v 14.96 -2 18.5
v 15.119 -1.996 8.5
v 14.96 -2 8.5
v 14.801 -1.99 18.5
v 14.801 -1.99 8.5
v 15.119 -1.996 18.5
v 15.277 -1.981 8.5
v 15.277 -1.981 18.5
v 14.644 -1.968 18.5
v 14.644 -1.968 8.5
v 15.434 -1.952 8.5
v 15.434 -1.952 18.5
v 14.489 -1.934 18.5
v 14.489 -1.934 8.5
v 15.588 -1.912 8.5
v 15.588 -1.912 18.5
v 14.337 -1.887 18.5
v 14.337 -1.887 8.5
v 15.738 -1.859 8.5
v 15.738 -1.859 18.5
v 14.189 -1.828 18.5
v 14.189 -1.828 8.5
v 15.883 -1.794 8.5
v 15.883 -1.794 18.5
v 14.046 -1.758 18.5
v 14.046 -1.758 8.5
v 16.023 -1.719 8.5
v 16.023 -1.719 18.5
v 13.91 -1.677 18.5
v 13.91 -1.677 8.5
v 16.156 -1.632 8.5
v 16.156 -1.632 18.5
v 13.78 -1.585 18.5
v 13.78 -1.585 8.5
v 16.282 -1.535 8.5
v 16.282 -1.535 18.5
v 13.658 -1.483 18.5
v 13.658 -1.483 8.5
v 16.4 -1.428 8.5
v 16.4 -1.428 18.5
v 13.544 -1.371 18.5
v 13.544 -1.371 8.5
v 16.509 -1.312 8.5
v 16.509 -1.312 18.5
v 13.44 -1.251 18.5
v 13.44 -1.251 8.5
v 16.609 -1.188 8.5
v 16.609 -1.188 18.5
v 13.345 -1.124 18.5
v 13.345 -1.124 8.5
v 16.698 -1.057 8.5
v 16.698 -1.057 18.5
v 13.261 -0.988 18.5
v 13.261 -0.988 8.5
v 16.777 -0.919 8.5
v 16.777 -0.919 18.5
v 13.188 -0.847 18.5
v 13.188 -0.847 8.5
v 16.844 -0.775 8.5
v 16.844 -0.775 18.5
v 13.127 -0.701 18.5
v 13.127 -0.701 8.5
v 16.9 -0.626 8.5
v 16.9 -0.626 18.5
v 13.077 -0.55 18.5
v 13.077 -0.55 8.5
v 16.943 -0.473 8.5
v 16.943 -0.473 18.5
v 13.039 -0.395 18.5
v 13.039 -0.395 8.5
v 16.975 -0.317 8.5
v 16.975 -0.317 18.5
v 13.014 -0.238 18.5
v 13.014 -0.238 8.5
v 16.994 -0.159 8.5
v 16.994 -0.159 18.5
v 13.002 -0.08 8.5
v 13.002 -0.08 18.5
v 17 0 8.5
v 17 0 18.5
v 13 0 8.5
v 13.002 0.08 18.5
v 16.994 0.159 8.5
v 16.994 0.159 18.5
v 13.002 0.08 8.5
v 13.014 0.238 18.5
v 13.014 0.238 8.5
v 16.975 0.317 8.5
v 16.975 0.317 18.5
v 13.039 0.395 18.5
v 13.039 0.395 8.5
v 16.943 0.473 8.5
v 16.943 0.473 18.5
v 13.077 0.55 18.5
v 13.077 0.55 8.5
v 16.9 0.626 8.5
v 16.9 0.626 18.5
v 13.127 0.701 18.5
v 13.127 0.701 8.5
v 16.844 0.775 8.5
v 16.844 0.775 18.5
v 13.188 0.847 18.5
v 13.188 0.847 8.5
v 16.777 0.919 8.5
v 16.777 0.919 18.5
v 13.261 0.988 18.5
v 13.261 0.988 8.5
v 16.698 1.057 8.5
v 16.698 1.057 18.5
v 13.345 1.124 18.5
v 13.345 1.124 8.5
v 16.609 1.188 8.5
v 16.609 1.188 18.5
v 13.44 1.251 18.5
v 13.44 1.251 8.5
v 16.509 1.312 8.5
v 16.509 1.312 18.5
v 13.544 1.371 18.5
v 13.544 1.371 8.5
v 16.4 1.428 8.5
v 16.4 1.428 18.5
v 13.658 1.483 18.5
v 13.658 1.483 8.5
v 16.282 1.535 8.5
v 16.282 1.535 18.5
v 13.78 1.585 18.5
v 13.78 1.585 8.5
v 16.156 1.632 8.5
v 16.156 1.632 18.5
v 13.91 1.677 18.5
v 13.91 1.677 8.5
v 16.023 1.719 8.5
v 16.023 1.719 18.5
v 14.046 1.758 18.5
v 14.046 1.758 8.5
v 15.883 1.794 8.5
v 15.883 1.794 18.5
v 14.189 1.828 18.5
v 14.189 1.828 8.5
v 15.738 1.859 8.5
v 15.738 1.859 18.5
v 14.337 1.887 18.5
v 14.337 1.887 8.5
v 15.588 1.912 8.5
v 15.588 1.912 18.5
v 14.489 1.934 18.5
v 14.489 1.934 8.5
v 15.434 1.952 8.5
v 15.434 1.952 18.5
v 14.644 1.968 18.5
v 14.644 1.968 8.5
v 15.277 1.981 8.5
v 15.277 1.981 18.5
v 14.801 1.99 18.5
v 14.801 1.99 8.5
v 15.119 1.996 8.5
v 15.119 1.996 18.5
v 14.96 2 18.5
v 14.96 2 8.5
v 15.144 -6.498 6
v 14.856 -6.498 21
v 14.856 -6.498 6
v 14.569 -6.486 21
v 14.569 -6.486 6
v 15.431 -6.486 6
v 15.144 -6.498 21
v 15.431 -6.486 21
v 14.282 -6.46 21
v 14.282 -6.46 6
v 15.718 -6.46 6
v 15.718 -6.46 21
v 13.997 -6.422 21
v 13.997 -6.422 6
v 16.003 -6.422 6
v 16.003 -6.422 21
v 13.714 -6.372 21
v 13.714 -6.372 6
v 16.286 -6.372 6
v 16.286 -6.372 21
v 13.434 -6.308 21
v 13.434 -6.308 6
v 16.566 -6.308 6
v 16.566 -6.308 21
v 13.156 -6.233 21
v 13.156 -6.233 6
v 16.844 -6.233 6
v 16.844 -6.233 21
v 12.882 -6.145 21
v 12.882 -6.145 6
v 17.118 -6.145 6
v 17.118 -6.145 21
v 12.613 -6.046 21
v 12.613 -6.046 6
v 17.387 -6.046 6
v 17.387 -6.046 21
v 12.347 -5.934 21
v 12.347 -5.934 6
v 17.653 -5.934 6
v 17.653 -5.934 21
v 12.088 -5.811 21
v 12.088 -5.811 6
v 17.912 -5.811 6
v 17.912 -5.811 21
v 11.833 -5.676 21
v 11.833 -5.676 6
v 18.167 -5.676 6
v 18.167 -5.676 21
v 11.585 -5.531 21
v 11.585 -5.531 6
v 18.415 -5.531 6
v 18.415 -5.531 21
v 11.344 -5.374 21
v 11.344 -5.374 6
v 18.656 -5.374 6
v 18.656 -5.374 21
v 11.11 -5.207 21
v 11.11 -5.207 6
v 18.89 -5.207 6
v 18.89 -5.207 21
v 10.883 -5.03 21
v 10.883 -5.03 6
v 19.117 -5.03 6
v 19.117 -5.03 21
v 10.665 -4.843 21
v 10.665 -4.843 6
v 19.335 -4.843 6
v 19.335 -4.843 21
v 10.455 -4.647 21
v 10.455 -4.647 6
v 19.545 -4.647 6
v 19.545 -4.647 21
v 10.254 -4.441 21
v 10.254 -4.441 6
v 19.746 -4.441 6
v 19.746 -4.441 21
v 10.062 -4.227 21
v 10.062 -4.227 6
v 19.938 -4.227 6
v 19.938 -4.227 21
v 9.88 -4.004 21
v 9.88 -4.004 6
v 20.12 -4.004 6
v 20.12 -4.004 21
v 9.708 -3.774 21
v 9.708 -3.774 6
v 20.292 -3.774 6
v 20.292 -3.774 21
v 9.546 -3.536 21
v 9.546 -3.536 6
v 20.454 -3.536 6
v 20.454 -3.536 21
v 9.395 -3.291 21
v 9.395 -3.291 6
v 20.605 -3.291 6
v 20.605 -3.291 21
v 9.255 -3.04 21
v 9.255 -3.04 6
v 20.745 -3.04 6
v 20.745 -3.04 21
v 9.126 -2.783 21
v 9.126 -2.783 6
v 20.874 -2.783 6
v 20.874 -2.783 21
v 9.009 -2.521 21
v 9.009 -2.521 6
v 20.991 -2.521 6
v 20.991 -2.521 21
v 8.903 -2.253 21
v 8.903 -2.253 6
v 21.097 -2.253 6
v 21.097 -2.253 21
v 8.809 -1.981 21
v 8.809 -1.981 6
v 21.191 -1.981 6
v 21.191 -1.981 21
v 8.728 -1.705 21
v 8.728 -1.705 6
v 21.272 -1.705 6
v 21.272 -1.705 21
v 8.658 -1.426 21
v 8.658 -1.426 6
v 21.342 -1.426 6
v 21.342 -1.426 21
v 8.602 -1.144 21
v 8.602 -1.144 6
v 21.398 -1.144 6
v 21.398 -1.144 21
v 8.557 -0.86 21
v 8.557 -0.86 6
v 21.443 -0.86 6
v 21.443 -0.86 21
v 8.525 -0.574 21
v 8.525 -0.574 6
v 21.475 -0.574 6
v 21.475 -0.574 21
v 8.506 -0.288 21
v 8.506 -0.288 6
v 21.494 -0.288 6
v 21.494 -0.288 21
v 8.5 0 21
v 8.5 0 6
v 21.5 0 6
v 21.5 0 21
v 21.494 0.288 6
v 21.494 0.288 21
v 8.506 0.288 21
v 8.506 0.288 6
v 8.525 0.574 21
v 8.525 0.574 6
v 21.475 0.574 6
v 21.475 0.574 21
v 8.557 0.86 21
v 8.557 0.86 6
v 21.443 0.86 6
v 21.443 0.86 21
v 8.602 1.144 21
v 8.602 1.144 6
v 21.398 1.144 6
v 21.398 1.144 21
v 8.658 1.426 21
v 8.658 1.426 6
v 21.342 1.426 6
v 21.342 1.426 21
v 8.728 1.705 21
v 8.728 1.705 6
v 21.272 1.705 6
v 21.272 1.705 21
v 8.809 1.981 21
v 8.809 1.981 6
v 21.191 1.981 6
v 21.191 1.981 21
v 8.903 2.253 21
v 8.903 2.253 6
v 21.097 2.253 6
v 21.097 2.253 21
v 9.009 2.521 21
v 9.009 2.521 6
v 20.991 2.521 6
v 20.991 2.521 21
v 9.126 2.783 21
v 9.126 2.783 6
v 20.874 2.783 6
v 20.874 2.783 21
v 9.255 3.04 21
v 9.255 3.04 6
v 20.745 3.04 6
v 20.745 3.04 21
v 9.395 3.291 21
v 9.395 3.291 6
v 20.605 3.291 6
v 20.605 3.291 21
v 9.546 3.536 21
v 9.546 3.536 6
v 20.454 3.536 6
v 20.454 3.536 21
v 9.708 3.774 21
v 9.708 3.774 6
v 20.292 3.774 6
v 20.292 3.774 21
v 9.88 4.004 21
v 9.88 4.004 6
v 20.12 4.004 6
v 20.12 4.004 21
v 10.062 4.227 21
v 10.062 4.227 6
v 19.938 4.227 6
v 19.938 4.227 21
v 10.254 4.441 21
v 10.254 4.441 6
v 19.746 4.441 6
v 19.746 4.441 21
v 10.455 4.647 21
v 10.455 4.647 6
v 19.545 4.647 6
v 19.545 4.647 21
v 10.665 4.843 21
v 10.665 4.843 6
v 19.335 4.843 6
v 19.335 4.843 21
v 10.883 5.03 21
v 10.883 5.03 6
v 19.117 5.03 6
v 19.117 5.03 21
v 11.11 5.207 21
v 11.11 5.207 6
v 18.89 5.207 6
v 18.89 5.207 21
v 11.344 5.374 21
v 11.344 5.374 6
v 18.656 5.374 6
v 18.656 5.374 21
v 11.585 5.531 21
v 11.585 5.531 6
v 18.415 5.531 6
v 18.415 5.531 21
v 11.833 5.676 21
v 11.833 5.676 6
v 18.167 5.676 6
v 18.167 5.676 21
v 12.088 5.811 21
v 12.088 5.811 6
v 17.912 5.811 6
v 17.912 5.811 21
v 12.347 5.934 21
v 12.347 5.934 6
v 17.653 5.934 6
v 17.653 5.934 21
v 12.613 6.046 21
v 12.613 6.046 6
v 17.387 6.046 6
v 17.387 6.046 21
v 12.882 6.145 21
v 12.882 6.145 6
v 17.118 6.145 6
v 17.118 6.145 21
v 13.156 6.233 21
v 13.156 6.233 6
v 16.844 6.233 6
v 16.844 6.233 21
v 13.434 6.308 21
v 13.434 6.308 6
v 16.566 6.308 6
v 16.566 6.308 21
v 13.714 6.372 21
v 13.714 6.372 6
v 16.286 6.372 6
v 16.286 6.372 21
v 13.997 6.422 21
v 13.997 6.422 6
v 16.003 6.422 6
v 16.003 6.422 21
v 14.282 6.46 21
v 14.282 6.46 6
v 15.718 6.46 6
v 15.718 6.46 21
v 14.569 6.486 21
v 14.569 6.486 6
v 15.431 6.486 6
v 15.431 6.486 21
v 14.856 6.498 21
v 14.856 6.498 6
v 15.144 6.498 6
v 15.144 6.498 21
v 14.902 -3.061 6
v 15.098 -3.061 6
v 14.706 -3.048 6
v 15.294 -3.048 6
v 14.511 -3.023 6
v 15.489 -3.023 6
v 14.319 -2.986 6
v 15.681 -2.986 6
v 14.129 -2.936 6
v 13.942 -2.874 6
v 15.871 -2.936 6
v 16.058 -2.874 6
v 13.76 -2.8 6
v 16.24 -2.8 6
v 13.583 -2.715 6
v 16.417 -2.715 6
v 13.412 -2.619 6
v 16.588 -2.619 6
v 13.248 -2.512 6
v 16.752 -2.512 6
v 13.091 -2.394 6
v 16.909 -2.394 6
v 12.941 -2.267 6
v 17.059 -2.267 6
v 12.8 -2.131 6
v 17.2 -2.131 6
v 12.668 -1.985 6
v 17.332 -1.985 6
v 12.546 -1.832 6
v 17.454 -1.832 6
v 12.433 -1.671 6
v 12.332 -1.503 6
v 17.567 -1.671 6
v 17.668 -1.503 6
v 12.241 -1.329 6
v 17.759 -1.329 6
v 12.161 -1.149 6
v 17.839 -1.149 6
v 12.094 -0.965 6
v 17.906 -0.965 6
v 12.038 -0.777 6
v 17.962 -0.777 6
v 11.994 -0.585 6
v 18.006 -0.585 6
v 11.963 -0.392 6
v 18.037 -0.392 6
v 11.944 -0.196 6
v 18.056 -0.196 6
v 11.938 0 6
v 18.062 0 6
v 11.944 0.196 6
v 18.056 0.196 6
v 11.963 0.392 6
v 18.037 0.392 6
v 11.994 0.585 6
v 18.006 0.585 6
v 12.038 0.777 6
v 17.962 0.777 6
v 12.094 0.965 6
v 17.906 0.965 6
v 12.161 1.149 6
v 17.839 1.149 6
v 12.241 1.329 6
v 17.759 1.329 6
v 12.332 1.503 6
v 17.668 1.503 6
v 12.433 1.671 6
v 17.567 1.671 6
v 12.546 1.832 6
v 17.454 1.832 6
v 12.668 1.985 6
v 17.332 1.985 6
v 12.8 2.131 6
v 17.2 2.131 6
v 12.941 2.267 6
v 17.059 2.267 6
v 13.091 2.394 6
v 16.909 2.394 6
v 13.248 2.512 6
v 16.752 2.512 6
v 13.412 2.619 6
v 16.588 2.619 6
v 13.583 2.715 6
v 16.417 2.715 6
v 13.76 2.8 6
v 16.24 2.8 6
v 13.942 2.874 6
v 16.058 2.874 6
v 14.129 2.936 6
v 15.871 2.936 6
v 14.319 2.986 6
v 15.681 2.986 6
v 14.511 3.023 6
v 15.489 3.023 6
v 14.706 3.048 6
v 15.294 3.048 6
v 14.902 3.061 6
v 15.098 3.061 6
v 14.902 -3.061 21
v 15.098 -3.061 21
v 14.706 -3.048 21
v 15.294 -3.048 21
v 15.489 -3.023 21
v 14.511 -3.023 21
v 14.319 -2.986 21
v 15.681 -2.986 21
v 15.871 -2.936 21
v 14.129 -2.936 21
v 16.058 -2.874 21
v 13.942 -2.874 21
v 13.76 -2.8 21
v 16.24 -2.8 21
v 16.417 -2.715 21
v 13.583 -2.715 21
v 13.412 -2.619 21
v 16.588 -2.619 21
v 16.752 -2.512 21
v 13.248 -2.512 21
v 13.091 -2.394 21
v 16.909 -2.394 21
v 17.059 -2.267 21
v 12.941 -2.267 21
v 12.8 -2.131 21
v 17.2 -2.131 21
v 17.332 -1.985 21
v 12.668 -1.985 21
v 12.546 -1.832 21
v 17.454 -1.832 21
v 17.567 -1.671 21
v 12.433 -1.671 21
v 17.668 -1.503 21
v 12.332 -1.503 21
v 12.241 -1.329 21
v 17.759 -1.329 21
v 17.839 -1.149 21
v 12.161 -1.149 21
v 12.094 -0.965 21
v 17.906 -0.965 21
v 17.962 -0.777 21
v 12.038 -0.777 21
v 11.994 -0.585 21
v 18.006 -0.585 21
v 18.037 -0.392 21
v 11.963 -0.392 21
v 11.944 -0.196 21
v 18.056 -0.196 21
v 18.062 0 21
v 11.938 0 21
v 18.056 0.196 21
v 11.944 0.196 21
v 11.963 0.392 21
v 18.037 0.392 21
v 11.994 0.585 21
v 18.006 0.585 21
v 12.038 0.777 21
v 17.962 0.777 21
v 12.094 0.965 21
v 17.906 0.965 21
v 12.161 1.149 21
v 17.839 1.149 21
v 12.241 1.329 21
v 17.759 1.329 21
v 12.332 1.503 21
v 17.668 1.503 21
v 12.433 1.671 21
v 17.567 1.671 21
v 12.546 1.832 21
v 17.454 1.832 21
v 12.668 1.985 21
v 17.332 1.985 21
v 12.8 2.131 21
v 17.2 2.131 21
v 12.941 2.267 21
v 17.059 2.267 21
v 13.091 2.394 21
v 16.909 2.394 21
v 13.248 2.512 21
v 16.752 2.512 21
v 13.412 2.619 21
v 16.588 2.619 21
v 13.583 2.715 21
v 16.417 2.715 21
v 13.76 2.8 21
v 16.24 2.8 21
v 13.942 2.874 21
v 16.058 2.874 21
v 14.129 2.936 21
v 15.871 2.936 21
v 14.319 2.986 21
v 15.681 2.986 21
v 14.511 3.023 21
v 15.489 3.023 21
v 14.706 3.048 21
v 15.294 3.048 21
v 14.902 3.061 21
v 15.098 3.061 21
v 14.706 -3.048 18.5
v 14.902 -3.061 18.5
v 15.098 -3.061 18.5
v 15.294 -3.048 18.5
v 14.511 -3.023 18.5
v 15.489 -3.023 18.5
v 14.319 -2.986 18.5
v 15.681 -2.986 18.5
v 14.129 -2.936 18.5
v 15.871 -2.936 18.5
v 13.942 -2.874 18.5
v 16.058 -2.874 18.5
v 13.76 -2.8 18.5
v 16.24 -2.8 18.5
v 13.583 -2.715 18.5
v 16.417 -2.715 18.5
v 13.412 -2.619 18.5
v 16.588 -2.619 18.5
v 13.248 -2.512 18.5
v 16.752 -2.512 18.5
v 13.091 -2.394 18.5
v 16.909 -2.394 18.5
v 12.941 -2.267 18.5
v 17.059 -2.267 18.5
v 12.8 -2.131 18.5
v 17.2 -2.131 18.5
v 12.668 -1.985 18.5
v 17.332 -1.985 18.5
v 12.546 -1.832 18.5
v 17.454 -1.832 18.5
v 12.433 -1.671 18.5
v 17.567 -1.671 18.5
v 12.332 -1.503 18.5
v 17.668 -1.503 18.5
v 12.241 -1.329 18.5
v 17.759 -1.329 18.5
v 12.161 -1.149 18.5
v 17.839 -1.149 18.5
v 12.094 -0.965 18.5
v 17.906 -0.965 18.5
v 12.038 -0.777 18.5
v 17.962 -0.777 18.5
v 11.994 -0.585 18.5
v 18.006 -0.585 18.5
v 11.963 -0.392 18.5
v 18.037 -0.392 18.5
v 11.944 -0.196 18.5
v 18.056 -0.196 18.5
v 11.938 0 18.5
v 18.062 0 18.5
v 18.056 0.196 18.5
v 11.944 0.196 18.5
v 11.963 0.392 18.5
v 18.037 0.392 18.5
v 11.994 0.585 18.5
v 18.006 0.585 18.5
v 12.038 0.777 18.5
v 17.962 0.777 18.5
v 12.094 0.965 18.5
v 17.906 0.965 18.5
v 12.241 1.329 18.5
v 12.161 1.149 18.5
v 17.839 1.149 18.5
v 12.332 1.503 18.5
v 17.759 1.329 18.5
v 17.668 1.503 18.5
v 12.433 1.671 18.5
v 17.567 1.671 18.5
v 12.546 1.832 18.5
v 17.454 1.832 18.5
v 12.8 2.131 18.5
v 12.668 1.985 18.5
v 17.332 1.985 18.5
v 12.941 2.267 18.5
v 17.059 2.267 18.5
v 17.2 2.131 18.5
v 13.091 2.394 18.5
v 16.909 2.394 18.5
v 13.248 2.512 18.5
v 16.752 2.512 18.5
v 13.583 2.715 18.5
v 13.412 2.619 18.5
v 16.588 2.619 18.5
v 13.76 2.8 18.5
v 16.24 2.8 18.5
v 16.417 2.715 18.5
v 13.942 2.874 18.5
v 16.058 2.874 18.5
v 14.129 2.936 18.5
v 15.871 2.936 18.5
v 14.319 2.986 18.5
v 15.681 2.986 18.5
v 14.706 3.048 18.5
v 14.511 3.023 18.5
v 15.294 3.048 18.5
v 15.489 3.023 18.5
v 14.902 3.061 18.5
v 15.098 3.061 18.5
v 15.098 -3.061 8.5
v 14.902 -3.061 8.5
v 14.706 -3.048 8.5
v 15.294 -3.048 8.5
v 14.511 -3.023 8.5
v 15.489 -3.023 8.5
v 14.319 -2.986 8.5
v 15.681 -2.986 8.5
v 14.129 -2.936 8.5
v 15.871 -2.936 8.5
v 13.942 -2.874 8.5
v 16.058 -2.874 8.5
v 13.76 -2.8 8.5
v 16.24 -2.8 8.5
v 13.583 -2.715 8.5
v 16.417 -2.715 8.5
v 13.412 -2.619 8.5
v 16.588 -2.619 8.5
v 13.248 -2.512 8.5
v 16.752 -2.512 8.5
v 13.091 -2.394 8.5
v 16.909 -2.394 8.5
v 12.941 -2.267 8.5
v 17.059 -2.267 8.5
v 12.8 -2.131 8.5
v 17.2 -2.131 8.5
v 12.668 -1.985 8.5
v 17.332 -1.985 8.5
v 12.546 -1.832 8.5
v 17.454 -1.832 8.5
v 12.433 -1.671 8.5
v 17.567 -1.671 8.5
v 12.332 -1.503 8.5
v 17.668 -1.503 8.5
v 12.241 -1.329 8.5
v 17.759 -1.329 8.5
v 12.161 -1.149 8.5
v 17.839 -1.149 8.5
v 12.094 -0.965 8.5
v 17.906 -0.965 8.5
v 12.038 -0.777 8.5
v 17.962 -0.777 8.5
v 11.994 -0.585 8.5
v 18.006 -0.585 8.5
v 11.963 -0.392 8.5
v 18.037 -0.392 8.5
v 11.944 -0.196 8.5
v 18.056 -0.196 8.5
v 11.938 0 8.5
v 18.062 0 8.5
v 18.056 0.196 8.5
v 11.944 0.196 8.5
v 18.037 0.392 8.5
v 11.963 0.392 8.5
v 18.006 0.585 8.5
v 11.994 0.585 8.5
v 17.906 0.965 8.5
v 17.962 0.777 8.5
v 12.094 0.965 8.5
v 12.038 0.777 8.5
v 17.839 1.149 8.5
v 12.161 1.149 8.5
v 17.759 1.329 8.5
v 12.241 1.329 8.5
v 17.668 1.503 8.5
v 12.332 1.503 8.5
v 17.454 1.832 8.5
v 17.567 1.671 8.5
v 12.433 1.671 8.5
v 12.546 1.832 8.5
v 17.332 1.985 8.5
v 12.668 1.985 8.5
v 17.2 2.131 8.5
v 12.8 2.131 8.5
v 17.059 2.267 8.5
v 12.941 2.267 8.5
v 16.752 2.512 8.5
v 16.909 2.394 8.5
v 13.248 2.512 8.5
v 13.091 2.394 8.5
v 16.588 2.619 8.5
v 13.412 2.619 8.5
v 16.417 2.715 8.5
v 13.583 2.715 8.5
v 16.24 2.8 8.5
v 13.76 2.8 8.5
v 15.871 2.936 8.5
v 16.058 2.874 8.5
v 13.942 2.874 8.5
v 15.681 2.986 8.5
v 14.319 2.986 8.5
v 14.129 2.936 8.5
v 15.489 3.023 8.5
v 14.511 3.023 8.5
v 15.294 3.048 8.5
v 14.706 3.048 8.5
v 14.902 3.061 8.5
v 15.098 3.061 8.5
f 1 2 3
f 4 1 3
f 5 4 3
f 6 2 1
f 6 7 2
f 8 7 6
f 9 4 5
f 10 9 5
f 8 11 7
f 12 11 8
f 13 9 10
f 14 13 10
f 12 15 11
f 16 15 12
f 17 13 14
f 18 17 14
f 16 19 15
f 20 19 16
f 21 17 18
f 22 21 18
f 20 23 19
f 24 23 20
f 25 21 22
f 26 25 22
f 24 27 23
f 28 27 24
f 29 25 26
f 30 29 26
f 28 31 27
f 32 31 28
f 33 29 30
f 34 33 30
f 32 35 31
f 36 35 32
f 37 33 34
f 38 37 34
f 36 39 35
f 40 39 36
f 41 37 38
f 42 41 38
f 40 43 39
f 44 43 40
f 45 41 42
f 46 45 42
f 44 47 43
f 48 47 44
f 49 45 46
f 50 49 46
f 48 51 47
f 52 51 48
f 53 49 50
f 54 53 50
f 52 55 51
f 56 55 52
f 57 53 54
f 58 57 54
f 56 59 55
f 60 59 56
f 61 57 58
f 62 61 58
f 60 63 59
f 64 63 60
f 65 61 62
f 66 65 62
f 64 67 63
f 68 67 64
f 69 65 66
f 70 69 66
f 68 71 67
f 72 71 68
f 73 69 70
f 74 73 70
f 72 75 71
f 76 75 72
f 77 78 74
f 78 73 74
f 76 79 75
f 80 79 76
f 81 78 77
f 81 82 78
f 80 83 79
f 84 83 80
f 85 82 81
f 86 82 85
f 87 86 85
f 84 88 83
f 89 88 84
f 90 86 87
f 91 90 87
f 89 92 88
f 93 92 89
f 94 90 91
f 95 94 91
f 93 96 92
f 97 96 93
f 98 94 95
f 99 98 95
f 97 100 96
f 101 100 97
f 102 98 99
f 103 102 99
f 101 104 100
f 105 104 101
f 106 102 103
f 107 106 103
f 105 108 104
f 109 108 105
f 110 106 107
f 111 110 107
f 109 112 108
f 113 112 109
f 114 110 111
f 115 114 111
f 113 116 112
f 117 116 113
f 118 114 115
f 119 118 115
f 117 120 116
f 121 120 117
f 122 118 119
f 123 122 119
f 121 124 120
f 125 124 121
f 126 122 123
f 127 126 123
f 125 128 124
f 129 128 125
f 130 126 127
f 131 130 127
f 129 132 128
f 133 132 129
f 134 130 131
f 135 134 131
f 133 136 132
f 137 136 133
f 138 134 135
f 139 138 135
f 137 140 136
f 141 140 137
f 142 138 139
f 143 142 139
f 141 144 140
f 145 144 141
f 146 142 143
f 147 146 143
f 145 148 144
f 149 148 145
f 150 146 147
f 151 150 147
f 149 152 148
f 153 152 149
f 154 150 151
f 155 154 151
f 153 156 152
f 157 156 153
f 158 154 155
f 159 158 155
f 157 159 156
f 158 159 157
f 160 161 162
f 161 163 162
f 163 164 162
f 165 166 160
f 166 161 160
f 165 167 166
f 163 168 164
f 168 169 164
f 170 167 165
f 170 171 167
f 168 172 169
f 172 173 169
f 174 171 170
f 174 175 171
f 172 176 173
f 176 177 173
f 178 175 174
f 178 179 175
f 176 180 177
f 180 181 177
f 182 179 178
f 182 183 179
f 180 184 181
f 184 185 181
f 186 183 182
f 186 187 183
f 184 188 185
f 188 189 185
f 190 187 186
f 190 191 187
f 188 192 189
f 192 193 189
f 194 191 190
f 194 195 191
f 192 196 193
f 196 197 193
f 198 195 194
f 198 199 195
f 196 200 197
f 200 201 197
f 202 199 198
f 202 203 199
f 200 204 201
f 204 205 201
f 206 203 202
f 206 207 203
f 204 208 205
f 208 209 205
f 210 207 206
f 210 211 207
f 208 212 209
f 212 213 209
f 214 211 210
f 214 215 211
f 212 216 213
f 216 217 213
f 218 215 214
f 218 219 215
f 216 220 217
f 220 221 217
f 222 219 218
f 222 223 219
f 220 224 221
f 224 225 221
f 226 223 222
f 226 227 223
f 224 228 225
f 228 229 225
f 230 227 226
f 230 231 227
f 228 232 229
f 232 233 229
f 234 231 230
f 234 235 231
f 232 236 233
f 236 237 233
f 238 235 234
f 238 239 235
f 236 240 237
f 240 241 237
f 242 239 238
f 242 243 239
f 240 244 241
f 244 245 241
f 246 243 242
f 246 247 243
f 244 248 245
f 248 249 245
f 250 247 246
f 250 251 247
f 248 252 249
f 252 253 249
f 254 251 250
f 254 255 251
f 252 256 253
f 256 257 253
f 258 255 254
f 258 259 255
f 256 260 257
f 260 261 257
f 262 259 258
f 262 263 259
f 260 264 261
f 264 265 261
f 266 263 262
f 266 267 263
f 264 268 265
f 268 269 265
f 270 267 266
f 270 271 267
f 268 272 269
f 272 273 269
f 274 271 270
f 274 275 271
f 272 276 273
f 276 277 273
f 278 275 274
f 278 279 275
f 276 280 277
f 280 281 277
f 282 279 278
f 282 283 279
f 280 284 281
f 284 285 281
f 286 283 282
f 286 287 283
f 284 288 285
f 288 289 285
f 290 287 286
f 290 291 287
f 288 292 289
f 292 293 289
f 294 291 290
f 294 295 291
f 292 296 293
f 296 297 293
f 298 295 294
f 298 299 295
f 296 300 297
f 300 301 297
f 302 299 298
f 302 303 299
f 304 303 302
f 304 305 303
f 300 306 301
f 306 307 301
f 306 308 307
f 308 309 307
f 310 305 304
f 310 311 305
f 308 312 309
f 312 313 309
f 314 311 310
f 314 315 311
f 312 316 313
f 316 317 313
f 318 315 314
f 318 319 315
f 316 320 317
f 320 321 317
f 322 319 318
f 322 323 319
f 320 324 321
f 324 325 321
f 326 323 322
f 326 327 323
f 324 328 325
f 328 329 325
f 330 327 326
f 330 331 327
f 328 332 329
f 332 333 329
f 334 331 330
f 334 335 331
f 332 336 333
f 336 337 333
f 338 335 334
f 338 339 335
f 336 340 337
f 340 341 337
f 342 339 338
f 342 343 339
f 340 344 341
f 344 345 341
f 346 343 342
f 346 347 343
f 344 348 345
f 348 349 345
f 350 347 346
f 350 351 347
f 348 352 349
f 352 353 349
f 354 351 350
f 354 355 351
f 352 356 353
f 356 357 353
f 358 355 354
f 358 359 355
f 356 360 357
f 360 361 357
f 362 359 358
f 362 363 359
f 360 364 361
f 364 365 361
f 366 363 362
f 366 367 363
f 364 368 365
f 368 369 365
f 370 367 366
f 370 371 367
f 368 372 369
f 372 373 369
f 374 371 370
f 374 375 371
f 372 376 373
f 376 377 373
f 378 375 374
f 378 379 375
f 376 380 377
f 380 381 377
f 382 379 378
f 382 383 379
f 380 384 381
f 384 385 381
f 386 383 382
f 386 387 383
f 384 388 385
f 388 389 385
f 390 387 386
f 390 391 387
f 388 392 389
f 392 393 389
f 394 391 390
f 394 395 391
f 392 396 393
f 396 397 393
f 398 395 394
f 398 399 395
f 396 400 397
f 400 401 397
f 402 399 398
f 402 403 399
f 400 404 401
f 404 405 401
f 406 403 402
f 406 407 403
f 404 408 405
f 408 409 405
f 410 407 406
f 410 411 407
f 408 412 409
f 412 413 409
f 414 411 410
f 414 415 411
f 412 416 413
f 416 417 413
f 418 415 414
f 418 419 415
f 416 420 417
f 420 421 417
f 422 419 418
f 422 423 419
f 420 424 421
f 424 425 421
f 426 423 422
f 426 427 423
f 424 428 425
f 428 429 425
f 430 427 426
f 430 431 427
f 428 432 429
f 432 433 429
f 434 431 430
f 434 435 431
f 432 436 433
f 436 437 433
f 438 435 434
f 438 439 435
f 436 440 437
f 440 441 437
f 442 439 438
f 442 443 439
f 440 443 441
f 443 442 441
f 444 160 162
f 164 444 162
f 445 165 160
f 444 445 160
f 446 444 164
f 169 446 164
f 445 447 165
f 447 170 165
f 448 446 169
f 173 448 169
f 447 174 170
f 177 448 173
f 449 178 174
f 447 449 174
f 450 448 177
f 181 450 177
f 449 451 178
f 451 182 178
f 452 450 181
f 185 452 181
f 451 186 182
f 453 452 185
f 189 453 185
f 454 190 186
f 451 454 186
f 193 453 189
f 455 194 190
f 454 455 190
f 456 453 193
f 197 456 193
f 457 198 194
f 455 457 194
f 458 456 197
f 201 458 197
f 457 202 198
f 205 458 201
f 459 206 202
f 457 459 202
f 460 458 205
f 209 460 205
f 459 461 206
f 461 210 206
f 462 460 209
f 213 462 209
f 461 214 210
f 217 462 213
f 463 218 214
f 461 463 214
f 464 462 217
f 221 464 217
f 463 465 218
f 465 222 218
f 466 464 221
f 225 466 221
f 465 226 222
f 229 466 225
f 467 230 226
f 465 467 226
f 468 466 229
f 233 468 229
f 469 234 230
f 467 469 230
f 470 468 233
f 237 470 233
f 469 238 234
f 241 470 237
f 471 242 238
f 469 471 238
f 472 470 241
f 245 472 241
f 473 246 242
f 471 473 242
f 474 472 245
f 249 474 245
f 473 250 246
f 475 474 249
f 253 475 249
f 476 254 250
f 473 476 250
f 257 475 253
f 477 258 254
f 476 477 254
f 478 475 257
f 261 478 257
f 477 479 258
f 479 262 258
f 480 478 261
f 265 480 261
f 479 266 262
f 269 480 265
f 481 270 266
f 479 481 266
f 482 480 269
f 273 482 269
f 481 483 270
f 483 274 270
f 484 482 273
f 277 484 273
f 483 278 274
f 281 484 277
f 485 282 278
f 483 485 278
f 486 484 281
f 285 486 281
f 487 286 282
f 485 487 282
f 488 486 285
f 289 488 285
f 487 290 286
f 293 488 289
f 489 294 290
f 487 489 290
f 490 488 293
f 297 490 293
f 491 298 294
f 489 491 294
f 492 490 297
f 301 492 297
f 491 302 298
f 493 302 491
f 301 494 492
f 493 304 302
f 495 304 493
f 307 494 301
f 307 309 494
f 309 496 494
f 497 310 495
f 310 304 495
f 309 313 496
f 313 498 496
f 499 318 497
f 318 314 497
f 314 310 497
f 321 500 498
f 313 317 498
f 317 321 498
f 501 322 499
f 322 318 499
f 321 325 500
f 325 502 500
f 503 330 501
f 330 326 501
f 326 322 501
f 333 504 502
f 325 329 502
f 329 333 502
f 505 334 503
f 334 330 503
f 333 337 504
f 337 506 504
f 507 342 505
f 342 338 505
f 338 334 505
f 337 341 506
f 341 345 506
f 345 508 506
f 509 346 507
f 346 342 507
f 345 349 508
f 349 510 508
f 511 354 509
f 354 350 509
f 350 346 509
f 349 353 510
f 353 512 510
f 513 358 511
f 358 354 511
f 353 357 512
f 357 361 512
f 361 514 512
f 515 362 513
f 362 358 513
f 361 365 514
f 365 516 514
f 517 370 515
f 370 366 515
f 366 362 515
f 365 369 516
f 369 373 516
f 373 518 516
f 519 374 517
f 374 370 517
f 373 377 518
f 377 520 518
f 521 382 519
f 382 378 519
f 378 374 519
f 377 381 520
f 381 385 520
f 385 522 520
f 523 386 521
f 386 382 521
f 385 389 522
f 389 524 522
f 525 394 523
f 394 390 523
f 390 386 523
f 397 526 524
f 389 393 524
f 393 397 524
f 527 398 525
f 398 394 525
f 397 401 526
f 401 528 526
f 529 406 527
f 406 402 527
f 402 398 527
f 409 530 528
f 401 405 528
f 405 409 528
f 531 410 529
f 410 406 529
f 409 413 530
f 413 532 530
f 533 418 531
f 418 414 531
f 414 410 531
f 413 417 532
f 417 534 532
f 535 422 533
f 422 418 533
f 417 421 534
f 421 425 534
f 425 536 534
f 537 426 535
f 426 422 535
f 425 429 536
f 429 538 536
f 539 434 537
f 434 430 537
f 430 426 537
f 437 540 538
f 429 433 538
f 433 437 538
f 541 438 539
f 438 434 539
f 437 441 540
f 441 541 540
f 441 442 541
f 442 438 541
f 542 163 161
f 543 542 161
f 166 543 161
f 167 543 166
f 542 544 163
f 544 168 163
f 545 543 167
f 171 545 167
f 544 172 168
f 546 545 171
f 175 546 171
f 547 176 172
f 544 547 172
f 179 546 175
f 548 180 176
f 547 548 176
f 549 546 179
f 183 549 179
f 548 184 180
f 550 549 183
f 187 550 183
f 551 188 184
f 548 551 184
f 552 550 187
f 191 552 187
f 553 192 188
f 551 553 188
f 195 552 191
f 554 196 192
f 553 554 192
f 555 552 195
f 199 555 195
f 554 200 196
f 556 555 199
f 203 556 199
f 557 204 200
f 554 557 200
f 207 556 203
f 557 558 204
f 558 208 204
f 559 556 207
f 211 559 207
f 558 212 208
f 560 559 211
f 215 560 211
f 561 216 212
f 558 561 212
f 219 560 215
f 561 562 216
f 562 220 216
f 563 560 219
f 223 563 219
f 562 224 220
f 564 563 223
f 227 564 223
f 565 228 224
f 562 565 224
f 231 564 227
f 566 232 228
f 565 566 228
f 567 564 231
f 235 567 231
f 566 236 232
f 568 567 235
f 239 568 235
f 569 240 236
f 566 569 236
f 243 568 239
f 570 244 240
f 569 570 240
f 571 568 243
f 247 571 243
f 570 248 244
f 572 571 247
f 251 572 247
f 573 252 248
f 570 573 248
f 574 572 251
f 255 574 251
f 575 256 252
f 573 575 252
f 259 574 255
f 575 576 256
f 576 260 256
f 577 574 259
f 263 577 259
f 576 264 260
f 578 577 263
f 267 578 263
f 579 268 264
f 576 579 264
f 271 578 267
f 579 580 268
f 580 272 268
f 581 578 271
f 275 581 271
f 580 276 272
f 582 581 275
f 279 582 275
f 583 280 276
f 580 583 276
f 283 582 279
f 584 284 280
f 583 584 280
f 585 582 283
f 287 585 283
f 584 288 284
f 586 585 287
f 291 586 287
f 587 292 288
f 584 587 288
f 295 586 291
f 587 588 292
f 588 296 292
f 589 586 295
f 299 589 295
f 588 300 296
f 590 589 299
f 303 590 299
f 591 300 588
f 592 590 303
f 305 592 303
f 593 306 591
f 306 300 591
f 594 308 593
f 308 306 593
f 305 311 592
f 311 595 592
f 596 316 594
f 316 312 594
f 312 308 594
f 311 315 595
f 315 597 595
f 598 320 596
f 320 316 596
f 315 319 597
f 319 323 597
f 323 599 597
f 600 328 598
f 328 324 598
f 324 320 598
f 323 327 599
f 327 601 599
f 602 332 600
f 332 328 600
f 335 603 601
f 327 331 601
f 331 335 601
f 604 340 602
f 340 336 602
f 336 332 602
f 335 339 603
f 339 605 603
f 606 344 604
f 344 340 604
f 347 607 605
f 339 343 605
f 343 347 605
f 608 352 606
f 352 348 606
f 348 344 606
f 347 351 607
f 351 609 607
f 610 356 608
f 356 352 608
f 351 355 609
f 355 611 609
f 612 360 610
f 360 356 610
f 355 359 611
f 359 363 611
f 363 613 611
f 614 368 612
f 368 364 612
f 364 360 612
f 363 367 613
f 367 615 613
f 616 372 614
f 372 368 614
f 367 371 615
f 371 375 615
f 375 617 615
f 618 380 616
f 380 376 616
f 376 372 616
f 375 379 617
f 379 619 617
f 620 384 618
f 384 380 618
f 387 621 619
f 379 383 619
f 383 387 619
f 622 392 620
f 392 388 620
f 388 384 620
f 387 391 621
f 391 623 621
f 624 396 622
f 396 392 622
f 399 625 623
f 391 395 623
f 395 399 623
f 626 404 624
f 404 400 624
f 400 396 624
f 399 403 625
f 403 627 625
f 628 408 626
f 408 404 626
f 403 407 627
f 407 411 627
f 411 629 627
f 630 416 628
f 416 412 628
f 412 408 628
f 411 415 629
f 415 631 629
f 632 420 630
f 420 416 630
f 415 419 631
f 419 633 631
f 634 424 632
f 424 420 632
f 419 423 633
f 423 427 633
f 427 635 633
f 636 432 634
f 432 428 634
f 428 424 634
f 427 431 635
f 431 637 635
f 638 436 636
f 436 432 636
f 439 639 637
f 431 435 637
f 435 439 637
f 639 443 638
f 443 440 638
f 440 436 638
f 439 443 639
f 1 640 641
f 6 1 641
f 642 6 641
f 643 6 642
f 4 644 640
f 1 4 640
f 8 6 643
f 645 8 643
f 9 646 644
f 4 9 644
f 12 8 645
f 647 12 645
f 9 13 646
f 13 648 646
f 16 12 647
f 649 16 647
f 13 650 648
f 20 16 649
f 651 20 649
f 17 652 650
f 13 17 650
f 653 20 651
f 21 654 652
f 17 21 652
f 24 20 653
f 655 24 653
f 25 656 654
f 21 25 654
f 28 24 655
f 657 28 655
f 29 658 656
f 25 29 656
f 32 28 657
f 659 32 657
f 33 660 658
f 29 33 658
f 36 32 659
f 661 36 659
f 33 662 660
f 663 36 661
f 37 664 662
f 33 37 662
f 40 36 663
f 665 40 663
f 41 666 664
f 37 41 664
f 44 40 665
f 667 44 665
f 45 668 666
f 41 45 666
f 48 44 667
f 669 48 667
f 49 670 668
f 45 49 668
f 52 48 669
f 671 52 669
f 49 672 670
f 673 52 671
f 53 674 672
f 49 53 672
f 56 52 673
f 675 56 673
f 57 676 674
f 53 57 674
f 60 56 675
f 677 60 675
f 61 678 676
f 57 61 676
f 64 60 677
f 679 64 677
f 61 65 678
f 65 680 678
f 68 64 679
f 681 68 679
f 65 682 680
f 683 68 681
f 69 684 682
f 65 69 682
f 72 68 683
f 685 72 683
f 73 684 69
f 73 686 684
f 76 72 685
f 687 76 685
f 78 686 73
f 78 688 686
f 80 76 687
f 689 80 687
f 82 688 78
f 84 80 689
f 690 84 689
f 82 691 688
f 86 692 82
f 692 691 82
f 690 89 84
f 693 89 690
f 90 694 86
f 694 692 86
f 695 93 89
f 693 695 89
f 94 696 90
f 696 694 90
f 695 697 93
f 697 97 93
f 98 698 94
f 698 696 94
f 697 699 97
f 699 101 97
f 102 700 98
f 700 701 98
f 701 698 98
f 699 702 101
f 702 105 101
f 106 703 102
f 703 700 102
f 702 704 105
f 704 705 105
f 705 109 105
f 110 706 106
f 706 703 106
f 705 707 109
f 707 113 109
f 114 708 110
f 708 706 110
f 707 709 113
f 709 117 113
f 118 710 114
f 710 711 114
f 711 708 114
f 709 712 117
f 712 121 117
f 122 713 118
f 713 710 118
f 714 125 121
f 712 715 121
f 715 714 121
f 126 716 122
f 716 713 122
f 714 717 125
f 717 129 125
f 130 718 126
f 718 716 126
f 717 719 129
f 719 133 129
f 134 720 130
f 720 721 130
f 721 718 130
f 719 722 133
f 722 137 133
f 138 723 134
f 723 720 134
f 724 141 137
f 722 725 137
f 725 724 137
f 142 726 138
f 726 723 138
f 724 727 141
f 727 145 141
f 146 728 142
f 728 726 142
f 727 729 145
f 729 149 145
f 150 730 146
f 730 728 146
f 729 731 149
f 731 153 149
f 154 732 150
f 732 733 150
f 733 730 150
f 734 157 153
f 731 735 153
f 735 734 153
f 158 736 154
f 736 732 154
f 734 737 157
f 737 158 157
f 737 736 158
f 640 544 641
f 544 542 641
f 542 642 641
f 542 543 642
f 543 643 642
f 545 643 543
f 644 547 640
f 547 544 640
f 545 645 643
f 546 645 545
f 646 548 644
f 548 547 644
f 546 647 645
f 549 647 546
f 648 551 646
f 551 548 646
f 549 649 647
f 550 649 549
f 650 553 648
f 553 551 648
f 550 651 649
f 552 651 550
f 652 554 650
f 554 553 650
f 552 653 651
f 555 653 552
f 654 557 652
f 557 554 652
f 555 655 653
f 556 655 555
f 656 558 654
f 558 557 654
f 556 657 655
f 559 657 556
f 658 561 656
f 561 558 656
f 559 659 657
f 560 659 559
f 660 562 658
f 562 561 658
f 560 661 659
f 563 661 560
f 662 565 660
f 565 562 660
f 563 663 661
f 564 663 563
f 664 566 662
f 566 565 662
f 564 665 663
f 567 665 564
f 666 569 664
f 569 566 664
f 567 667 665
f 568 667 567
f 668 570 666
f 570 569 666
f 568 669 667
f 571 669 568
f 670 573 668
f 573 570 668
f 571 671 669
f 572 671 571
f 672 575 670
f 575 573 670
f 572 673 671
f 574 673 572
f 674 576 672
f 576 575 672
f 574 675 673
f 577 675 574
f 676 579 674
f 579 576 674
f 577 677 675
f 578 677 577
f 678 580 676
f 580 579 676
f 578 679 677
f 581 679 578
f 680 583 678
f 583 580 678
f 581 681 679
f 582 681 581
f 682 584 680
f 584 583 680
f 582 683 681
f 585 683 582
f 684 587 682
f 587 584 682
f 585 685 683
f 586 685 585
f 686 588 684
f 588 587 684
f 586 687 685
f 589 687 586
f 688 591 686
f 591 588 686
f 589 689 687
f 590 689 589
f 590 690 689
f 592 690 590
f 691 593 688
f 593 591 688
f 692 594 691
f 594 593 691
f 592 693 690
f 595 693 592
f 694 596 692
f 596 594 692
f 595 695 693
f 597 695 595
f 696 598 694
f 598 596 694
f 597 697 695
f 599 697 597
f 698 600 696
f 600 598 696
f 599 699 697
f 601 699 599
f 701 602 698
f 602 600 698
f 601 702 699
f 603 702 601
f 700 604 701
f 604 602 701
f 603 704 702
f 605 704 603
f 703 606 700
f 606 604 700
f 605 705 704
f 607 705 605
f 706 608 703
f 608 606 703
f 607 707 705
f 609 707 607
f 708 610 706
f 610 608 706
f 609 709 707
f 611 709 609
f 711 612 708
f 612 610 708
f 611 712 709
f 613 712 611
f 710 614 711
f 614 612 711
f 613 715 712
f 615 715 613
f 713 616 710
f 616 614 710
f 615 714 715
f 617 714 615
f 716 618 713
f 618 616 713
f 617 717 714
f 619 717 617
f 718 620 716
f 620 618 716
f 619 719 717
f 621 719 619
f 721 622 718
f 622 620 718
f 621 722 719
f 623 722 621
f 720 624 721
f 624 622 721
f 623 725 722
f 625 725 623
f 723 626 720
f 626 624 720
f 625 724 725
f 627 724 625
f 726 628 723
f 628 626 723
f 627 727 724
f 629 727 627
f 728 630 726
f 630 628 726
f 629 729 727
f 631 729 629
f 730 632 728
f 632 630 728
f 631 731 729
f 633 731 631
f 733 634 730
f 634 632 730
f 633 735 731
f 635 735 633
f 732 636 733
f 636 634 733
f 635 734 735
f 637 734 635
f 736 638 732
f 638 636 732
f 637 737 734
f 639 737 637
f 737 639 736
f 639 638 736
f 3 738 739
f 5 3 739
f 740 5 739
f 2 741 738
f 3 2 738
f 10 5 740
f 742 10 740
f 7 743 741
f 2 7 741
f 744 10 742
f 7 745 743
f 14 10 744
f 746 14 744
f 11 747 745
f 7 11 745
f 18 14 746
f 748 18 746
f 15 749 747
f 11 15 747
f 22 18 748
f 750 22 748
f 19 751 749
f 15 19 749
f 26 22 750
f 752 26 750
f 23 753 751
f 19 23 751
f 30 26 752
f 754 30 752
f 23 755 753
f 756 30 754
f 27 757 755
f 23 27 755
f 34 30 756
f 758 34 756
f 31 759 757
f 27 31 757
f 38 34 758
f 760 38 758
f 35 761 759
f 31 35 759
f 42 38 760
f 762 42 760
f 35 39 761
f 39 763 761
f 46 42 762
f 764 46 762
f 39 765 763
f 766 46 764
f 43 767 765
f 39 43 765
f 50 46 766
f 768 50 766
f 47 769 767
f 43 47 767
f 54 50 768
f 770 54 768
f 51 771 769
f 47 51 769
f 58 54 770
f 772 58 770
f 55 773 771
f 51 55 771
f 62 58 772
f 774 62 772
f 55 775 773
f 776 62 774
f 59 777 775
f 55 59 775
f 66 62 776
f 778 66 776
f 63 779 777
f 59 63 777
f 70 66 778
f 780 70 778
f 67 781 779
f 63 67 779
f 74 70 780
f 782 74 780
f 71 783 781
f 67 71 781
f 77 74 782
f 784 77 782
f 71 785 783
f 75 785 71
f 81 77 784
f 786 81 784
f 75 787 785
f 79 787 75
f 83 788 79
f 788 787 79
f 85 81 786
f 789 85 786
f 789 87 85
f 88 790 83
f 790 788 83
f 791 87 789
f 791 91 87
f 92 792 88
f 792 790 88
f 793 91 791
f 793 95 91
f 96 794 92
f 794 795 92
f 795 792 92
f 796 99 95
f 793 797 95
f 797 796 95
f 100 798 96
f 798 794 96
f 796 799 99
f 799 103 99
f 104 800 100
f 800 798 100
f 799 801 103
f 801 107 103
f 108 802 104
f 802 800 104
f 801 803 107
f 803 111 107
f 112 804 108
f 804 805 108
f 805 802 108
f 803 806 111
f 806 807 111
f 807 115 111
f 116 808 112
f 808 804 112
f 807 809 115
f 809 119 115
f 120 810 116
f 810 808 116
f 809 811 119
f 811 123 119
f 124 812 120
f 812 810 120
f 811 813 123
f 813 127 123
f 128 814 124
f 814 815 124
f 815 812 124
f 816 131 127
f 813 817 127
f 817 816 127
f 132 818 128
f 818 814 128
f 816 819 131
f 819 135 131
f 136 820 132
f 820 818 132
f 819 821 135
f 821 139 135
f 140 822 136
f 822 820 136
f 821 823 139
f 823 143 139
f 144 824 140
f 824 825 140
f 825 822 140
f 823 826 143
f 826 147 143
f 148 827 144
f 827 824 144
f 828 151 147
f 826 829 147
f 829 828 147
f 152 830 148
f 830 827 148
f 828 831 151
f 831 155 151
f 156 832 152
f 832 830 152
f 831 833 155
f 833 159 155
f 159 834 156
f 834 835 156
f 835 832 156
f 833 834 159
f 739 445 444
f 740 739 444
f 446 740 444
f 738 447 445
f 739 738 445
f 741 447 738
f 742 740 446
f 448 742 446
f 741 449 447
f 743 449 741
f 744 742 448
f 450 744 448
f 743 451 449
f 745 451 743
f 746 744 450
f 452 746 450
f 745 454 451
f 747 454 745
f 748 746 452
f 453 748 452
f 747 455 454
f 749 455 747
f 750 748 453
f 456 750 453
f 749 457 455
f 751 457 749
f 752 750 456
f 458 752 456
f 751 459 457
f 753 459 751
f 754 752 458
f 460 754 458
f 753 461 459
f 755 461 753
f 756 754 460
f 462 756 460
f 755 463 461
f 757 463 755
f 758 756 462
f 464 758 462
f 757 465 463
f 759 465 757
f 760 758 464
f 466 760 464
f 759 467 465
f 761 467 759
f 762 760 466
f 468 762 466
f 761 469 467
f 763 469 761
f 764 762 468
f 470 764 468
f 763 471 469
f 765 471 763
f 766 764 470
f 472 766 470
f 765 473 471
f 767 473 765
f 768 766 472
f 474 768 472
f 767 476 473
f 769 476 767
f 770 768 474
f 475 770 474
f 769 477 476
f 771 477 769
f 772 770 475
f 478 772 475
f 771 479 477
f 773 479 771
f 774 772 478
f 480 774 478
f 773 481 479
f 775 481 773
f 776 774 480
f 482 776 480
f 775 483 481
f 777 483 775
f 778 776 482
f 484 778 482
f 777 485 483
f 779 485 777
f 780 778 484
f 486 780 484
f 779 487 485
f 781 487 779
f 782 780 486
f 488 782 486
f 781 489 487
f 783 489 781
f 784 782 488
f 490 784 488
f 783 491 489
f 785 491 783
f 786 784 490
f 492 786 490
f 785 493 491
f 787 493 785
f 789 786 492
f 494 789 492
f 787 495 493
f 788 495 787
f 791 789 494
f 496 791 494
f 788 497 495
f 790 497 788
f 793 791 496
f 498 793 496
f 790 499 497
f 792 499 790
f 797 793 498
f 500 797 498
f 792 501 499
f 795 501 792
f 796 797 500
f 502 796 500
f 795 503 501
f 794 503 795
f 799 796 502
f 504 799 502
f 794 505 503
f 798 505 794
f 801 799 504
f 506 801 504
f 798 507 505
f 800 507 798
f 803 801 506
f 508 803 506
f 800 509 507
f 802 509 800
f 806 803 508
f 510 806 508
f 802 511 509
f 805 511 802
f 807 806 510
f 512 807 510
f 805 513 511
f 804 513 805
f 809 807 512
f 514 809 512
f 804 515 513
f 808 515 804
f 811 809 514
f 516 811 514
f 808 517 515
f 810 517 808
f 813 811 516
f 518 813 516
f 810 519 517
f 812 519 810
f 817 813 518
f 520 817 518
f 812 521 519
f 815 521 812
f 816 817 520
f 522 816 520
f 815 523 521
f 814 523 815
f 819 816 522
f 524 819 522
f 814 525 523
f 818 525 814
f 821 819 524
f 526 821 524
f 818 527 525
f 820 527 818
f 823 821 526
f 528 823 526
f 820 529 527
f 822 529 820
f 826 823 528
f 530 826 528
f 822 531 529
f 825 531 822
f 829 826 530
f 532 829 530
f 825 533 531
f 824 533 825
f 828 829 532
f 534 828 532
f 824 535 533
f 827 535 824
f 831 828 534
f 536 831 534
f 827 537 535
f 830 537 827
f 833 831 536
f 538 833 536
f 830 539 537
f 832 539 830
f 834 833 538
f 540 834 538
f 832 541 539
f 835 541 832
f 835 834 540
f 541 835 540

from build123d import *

# Parameters (mm, degrees)
BOSS_EXTRUDE1_DEPTH      = 7.5
BOSS_EXTRUDE1_DEPTH_BACK = 7.5
SKETCH1_R                = 6.5
SKETCH1_R_2              = 2
SKETCH2_R                = 3.0625
CUT_EXTRUDE1_DEPTH       = 2.5


with BuildPart() as part:
    # Sketch1 → Boss-Extrude1 (new, two sides: drawn at the far end of the back side and taken through both)
    with BuildSketch(Plane.XY.offset(13.5).offset(-BOSS_EXTRUDE1_DEPTH_BACK)):
        with Locations((15, 0)):
            Circle(SKETCH1_R)
        with Locations((15, 0)):
            Circle(SKETCH1_R_2, mode=Mode.SUBTRACT)
    extrude(amount=BOSS_EXTRUDE1_DEPTH + BOSS_EXTRUDE1_DEPTH_BACK)

    # Sketch2 → Cut-Extrude1 (cut)
    with BuildSketch(Plane.XY.offset(21)):
        with Locations((15, 0)):
            Circle(SKETCH2_R)
    cut_extrude1 = extrude(amount=-CUT_EXTRUDE1_DEPTH, mode=Mode.SUBTRACT)

    # Mirror1: Cut-Extrude1 across plane
    add(cut_extrude1.mirror(Plane.XY.offset(13.5)), mode=Mode.SUBTRACT)


solid = part.part
